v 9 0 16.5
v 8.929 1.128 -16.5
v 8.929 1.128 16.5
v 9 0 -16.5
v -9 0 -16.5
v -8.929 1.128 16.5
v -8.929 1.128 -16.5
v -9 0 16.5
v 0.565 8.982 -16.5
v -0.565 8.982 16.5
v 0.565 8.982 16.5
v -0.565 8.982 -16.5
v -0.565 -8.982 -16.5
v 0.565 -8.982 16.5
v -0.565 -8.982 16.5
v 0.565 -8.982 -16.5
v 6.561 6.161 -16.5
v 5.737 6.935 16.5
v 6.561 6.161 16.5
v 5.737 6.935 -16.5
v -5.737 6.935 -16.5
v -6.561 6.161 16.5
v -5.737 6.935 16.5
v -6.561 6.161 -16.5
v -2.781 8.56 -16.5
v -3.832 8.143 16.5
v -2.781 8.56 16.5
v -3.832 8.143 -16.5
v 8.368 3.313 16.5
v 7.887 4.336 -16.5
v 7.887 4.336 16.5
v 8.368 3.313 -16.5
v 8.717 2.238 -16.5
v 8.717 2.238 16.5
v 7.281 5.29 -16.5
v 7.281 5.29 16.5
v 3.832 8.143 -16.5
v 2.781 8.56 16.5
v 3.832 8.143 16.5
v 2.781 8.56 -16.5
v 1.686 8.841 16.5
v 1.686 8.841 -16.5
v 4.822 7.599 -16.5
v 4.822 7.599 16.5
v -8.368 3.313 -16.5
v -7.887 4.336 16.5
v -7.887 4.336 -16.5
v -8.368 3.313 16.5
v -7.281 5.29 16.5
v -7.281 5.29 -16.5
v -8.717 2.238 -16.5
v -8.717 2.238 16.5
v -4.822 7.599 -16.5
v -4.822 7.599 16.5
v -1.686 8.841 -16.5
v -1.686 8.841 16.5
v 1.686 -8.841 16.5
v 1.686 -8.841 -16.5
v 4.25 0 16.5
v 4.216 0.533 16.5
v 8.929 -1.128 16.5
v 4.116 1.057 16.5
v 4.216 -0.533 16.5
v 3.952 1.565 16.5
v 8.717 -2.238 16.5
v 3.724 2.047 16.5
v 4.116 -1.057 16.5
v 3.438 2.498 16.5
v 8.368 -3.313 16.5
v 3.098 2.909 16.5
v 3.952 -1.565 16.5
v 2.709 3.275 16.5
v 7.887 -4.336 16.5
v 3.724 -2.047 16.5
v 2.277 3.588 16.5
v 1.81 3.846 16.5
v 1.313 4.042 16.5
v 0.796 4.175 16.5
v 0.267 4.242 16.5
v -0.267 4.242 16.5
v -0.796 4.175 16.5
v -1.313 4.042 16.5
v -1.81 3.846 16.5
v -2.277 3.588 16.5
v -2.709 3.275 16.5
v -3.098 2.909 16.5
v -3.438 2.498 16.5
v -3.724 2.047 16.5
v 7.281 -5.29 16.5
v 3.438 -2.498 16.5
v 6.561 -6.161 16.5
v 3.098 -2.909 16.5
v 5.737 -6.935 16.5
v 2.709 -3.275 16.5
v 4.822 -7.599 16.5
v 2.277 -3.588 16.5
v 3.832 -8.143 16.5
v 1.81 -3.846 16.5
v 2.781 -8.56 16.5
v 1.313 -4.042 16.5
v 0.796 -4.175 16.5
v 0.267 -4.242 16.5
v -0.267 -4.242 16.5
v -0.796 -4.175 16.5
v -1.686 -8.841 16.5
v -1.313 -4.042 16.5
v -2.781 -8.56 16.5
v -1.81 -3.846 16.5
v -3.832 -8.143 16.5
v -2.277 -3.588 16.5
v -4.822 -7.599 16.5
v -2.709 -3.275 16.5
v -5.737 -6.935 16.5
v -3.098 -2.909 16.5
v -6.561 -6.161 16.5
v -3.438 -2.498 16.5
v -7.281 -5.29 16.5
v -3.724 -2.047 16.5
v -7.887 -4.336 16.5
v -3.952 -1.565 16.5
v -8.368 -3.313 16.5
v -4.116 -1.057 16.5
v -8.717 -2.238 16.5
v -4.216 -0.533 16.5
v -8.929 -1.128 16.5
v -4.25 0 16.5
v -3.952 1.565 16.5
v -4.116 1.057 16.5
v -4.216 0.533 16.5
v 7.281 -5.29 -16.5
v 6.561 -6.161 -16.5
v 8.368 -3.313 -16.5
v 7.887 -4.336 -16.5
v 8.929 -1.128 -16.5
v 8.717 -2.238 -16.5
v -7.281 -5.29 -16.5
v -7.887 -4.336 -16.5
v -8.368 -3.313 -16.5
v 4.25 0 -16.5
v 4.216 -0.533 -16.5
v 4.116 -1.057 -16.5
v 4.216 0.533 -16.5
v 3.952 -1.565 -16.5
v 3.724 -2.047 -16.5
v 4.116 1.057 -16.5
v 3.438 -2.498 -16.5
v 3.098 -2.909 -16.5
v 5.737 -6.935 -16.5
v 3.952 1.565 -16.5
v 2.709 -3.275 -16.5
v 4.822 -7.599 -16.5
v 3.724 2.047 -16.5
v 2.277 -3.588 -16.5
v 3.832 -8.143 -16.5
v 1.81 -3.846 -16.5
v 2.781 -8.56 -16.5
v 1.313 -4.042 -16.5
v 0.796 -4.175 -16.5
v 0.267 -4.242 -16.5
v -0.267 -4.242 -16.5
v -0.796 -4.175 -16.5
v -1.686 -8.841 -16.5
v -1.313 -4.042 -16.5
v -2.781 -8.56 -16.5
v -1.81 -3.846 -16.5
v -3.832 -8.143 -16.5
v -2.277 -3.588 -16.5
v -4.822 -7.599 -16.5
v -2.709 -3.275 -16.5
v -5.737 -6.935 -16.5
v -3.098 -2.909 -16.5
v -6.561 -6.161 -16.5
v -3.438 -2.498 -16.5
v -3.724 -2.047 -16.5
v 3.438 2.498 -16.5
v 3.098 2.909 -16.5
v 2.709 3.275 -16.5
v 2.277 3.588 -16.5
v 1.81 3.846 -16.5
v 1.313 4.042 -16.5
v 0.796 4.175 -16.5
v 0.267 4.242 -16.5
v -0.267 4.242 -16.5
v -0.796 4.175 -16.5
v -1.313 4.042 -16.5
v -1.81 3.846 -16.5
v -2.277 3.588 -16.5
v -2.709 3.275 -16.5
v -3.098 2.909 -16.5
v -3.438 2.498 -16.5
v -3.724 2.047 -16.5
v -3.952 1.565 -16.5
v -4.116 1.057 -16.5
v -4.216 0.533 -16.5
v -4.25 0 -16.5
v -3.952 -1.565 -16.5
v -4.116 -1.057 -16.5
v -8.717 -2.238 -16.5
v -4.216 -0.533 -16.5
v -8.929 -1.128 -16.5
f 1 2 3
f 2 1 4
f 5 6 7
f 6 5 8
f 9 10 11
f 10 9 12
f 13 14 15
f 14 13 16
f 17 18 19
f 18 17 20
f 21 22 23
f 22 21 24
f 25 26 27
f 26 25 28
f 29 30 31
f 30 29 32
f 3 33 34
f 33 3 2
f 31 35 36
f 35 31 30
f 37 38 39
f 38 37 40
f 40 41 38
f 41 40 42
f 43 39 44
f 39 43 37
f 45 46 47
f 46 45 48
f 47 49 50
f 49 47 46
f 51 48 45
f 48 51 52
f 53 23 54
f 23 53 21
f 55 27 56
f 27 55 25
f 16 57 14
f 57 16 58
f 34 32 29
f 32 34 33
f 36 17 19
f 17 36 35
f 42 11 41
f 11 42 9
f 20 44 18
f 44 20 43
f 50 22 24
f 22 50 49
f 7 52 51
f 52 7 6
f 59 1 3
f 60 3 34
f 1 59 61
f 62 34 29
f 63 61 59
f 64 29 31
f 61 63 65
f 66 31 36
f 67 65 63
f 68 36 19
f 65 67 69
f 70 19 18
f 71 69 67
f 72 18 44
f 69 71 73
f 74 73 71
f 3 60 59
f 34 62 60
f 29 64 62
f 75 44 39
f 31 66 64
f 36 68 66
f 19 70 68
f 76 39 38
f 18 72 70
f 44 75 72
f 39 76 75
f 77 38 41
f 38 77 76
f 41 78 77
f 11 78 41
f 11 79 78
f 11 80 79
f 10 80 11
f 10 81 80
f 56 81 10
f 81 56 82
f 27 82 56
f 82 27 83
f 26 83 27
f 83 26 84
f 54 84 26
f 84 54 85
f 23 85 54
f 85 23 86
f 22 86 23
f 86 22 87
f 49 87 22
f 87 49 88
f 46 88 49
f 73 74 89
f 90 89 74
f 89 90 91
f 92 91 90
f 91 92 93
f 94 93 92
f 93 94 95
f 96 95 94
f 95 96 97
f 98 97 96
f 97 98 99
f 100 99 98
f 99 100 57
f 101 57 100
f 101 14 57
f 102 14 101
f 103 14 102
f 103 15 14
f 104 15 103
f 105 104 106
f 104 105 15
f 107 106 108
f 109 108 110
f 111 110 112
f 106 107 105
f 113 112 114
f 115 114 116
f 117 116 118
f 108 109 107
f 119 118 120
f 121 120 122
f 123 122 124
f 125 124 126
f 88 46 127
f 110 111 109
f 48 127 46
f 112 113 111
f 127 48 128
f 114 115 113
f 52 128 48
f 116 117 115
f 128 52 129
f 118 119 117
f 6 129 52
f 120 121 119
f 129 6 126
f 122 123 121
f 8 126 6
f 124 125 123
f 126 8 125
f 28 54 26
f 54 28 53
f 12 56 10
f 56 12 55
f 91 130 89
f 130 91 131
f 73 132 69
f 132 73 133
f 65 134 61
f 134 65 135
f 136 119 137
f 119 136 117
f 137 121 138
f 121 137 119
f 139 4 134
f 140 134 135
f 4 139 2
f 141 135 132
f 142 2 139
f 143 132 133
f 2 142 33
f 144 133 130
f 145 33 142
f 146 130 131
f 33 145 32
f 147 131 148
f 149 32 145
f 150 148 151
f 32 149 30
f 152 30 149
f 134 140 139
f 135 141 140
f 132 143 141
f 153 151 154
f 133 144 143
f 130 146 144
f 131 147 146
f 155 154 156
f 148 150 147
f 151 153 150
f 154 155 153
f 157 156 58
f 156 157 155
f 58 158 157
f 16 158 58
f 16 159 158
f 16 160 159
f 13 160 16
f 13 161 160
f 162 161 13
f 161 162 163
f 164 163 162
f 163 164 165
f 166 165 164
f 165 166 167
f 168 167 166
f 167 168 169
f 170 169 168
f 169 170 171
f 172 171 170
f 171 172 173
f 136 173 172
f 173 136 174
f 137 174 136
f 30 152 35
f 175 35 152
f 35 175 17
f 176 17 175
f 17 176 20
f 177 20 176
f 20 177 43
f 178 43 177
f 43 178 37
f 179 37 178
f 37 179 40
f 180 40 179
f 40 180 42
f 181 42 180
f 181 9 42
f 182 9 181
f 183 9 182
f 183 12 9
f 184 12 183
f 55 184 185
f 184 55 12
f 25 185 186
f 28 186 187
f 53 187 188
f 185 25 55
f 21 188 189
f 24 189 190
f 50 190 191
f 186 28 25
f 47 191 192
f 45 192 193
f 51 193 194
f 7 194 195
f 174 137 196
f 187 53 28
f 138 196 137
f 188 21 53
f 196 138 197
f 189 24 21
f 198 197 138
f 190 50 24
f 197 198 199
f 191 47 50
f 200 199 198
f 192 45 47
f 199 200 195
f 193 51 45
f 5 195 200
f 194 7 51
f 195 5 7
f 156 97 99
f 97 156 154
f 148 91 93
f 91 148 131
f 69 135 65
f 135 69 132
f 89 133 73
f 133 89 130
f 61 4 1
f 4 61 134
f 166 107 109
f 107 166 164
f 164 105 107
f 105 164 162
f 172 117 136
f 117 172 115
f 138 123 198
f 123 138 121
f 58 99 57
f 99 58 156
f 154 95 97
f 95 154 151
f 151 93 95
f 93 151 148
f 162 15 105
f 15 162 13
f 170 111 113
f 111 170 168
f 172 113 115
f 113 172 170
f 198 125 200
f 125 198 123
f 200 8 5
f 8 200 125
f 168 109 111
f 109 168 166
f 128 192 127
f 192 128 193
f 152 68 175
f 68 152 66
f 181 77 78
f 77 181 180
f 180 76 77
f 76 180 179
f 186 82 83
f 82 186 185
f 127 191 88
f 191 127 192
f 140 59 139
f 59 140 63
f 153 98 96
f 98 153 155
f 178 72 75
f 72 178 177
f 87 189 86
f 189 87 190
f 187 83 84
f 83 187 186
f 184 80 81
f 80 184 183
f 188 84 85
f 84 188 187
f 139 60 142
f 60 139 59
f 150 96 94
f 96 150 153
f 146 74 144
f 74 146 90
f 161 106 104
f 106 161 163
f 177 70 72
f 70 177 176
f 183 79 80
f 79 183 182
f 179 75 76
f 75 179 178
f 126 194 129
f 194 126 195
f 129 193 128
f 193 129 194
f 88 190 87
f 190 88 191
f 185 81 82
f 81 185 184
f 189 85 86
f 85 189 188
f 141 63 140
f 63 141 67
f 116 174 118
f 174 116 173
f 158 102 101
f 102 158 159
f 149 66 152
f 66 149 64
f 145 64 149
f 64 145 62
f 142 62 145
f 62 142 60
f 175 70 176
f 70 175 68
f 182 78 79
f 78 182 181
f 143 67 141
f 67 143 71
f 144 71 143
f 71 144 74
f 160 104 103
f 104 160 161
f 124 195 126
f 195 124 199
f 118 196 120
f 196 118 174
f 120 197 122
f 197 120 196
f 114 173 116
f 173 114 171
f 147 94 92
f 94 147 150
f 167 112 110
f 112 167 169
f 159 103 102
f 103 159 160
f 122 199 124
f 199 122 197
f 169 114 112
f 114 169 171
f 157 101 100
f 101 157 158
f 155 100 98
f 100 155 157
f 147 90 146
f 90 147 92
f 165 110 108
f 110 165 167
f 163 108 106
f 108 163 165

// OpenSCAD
$fn = 50;


difference() {
	union() {
		translate(v = [0, 0, -16.5000000000]) {
			cylinder(h = 33, r = 9.0000000000);
		}
	}
	union() {
		translate(v = [0, 0, -100.0000000000]) {
			cylinder(h = 200, r = 4.2500000000);
		}
	}
}
